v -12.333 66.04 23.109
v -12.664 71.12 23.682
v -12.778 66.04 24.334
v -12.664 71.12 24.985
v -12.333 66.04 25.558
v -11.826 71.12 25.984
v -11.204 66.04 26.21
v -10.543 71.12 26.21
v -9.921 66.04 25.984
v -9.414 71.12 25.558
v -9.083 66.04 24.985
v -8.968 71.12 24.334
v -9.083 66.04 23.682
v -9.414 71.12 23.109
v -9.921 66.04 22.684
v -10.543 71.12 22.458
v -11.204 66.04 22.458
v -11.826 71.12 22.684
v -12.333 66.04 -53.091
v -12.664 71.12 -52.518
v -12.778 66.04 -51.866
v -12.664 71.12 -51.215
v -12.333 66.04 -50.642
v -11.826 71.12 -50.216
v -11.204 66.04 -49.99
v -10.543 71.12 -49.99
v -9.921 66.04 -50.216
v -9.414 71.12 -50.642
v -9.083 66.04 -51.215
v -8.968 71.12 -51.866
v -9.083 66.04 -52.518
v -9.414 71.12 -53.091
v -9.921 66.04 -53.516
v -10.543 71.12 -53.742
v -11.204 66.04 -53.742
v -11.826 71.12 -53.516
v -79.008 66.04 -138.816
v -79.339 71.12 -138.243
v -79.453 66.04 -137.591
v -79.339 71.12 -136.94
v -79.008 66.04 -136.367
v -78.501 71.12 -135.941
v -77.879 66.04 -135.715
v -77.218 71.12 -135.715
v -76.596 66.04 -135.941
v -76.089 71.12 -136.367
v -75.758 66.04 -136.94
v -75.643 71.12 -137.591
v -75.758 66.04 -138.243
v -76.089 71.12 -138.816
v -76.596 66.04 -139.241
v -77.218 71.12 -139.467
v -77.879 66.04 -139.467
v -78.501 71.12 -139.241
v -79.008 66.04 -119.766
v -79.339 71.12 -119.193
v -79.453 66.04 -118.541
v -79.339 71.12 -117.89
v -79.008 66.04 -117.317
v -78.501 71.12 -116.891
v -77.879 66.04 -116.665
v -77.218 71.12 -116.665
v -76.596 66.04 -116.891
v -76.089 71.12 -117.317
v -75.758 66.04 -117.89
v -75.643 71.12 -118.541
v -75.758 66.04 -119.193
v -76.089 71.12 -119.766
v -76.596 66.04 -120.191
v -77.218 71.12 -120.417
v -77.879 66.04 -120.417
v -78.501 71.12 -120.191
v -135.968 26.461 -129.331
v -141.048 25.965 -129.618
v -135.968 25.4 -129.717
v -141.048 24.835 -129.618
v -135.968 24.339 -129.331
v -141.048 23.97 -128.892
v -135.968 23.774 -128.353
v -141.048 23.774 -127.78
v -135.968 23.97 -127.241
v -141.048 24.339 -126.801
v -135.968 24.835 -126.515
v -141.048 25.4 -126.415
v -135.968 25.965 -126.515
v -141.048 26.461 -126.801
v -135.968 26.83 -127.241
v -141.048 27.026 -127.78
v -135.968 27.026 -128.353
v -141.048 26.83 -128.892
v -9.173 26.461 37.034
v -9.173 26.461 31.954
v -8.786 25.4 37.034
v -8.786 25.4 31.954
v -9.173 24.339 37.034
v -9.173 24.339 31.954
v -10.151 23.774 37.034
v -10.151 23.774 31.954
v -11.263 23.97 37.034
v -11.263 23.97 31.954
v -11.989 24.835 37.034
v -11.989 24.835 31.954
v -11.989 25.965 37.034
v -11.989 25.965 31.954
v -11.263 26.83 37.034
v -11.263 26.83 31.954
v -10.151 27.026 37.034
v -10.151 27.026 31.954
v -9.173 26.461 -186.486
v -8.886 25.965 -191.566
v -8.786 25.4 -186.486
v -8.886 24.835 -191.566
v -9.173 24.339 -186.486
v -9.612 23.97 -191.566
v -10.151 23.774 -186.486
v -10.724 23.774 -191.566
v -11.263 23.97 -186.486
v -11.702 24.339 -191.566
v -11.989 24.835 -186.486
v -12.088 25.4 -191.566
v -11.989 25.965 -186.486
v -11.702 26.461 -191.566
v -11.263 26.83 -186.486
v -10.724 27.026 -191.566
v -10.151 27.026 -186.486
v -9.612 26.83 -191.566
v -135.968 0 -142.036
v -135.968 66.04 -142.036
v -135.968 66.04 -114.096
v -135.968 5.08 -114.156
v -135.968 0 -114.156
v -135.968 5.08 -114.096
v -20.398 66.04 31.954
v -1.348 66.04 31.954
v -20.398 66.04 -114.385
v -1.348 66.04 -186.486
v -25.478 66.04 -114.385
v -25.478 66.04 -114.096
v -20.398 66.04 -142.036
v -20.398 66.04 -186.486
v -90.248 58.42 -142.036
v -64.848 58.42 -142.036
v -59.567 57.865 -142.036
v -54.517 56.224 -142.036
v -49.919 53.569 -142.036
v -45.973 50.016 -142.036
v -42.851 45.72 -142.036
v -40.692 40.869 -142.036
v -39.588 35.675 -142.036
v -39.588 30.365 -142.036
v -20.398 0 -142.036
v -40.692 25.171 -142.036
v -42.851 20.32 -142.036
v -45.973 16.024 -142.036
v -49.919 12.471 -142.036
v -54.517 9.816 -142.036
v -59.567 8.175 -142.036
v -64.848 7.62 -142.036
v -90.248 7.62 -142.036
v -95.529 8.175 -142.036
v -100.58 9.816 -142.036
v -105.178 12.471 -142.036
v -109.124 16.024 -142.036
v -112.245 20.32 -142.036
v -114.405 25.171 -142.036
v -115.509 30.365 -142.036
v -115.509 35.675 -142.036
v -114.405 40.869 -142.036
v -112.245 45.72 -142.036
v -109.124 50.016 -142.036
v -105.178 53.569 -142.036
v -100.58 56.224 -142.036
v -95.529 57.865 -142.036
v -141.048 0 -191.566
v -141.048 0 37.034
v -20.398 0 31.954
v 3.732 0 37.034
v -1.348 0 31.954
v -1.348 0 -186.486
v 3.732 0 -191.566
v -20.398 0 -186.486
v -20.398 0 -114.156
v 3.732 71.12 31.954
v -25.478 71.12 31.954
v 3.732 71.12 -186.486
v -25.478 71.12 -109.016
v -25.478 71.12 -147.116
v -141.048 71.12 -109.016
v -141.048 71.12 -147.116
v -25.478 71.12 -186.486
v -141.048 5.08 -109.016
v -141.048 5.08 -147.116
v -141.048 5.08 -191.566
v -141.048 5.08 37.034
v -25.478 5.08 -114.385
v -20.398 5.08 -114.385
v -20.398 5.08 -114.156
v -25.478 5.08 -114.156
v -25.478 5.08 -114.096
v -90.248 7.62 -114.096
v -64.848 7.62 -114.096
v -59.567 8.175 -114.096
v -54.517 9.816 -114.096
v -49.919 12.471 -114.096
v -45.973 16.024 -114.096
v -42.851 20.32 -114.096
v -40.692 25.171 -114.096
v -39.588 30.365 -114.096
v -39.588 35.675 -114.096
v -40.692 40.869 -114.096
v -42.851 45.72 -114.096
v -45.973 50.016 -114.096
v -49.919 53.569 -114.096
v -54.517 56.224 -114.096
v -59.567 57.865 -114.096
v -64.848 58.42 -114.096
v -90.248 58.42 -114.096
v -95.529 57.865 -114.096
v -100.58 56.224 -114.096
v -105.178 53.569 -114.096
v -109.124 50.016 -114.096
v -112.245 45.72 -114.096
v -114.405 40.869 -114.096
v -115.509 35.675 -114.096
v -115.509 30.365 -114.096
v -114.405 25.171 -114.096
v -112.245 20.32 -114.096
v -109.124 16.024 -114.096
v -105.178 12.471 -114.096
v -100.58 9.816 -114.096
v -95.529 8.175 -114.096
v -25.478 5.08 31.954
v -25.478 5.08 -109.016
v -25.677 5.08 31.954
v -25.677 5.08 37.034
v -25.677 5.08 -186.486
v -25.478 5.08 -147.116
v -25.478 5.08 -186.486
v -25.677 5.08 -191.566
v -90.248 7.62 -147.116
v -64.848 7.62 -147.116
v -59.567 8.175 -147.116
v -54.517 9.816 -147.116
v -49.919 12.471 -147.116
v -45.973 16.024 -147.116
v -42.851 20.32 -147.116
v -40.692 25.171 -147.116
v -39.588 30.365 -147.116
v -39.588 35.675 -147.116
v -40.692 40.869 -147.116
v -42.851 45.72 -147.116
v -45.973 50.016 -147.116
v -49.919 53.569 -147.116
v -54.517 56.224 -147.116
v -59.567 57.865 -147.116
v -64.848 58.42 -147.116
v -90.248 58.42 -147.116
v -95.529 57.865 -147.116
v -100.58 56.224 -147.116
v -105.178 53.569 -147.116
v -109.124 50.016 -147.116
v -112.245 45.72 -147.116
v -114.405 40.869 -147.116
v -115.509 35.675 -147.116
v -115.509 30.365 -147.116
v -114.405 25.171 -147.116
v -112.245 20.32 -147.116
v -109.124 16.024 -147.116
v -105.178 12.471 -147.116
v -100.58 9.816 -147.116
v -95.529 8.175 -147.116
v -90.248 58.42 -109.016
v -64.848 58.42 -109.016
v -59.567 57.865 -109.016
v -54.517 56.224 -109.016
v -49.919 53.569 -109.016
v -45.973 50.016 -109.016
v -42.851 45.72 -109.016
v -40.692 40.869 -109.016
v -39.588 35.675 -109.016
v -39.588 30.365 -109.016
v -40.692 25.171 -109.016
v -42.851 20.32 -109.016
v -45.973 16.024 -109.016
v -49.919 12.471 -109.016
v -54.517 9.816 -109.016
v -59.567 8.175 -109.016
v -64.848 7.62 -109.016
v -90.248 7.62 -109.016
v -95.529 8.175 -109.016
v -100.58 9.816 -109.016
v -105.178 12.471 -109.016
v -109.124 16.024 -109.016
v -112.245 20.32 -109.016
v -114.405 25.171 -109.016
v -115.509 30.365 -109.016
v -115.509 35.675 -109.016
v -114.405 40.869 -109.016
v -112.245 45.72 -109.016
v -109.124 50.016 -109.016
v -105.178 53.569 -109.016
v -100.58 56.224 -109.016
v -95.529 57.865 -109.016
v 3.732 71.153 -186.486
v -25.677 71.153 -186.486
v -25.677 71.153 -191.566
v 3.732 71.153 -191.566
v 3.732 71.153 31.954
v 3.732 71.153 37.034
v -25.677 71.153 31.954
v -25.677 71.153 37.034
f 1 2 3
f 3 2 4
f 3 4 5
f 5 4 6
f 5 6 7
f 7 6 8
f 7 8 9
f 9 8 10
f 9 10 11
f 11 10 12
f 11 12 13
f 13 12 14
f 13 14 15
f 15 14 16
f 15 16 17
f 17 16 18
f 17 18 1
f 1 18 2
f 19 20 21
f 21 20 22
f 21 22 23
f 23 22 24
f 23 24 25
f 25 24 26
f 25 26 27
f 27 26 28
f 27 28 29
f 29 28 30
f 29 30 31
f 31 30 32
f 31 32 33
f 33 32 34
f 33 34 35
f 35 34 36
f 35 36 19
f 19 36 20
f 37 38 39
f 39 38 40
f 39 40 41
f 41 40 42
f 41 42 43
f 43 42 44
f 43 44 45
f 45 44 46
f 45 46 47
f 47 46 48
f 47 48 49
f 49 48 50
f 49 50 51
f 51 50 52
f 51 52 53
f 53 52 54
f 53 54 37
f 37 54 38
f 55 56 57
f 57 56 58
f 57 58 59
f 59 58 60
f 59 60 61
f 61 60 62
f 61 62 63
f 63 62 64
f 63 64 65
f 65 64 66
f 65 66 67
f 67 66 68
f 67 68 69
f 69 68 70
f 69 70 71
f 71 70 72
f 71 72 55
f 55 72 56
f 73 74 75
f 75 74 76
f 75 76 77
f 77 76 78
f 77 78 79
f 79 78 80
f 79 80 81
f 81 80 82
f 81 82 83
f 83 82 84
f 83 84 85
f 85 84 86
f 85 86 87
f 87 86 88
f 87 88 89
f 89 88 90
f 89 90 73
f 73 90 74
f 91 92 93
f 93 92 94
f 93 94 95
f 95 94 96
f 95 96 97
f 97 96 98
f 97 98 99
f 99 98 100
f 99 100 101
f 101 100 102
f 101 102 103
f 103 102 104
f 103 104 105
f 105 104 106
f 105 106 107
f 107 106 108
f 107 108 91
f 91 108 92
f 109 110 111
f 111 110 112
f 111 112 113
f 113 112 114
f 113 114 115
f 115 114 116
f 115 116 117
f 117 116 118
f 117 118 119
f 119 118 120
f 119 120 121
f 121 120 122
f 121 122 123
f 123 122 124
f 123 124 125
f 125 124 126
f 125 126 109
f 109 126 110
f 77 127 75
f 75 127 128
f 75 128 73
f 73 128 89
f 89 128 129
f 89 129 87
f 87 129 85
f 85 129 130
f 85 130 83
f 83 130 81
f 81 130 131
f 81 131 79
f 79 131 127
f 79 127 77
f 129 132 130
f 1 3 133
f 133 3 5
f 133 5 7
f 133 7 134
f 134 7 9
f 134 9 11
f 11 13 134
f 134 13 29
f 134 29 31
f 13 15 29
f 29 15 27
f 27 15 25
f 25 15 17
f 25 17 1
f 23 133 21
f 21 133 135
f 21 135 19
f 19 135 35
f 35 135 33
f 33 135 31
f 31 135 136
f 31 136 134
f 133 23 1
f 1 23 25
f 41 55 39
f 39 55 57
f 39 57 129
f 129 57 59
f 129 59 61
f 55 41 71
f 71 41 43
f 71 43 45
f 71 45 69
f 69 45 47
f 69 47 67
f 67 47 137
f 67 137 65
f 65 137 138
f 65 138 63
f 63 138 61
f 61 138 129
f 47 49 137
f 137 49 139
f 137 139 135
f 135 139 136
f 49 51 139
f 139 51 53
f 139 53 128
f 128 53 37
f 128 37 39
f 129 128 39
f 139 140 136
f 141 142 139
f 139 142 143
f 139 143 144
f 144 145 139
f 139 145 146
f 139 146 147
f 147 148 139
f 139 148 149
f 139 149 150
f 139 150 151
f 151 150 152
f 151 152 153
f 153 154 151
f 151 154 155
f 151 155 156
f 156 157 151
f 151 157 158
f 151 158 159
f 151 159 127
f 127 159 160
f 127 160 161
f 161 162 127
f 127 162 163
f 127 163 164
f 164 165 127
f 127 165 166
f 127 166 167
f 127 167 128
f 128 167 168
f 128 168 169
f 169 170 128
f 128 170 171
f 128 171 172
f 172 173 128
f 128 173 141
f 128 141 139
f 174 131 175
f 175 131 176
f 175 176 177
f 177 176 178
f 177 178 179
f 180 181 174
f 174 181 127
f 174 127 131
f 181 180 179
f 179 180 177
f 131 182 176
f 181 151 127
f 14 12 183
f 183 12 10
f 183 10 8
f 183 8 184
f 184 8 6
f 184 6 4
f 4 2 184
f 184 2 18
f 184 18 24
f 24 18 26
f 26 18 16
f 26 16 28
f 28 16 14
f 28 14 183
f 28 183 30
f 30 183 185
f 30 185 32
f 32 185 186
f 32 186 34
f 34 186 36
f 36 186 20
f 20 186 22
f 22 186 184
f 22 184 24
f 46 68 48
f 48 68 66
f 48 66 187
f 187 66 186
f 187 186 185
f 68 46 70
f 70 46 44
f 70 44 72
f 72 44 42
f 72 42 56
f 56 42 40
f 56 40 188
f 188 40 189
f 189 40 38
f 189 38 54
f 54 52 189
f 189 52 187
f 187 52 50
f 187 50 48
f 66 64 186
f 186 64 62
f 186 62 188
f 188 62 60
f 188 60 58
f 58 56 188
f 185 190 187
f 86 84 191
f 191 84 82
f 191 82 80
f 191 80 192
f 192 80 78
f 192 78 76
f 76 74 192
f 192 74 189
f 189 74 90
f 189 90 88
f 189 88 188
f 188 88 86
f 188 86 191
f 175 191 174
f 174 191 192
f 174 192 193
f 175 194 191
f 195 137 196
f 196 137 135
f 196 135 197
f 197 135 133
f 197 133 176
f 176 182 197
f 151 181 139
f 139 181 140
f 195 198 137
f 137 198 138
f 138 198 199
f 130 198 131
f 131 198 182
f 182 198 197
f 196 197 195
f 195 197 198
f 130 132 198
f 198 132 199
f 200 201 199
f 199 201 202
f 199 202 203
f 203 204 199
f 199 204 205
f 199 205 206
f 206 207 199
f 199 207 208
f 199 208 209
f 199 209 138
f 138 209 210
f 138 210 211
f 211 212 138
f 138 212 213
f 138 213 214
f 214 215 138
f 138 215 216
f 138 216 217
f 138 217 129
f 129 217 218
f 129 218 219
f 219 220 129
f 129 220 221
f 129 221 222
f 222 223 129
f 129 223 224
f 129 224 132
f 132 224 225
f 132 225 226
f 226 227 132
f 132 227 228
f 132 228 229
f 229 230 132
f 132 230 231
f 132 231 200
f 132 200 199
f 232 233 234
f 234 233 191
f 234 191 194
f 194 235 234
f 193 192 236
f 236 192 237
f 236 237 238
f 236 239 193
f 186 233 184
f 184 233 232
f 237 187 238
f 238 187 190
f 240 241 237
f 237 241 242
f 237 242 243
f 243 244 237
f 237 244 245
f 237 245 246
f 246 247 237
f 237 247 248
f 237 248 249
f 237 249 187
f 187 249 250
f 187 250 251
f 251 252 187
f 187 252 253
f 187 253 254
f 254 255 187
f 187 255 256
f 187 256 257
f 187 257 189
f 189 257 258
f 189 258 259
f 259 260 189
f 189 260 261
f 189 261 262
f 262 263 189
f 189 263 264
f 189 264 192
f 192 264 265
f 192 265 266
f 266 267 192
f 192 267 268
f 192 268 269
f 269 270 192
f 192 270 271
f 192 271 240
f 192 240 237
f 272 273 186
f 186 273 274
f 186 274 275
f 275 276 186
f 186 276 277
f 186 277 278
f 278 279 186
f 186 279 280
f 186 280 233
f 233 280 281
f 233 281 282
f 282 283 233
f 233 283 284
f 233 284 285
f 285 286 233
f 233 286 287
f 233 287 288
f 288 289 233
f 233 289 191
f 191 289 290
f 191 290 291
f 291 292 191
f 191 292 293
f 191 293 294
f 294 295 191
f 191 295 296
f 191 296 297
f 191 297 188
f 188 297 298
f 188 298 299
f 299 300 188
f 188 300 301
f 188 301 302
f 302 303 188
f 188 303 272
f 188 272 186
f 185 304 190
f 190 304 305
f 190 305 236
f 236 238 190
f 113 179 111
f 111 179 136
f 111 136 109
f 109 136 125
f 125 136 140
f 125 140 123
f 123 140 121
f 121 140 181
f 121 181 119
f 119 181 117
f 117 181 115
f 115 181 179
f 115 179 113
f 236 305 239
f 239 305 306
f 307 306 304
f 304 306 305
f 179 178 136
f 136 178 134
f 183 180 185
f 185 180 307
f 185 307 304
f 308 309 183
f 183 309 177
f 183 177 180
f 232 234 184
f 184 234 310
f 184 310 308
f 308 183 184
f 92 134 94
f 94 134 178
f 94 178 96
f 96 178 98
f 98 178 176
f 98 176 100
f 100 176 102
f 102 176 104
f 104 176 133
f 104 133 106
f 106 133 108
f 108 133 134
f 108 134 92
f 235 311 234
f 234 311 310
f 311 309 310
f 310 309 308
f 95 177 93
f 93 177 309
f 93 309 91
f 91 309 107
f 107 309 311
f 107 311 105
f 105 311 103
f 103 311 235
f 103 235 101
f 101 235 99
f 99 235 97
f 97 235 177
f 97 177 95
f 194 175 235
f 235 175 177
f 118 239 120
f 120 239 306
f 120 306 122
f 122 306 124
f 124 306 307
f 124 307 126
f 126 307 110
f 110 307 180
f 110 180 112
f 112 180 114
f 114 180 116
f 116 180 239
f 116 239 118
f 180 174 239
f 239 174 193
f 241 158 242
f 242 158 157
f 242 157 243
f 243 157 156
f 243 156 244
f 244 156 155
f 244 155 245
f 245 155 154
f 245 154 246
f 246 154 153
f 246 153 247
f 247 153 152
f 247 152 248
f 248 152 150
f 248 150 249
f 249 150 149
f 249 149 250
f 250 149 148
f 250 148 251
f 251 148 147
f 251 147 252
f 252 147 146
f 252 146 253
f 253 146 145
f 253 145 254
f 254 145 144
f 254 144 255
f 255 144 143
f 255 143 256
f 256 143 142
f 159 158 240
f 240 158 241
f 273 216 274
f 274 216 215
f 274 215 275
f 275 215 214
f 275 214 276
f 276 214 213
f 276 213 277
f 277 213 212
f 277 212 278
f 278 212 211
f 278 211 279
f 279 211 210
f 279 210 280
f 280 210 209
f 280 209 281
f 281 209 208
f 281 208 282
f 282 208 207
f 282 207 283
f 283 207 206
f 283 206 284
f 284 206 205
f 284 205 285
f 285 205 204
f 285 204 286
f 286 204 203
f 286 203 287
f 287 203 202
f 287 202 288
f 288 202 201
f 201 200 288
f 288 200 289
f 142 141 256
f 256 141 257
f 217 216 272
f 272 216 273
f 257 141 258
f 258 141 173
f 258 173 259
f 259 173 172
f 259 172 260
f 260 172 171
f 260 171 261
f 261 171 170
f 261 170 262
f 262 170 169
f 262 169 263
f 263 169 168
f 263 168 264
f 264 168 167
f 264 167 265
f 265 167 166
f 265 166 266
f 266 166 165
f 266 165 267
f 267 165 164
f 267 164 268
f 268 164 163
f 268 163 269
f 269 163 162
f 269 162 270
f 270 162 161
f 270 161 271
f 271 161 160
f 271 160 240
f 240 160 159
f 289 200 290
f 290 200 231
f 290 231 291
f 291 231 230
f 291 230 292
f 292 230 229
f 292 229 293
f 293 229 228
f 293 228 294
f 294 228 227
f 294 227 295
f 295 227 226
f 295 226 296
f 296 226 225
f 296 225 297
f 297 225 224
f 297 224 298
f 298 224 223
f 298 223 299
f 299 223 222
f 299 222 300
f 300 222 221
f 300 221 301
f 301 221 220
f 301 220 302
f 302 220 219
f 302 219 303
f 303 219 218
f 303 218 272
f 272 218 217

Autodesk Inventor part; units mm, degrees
ref_plane "YZ Plane" through (0, 0, 0) normal (1, 0, 0) x (0, 1, 0)
ref_plane "XZ Plane" through (0, 0, 0) normal (0, 1, 0) x (-1, 0, 0)
ref_plane "XY Plane" through (0, 0, 0) normal (0, 0, 1) x (1, 0, 0)
sketch "Sketch51" plane through (0, 0, 0) normal (0, 1, 0) x (-1, 0, 0)
  line L0 (1.3484, 37.0338) -> (-3.7316, 37.0338)
  line L1 (-3.7316, 37.0338) -> (-3.7316, -191.5662)
  line L2 (-3.7316, -191.5662) -> (1.3484, -191.5662)
  line L3 (1.3484, -191.5662) -> (1.3484, 37.0338)
  point P0 (0, 0)
  dimension "d172" = 5.08
  dimension "d173" = 228.6
extrude "Extrusion37" add sketch "Sketch51" along normal blind 71.12
sketch "Sketch52" plane through (-1.3484, 0, 37.0338) normal (0, 0, 1) x (1, 0, 0)
  line L0 (5.08, 0) -> (5.08, 71.12) projected
  line L1 (5.08, 71.12) -> (-24.13, 71.12)
  line L2 (-24.13, 71.12) -> (-24.13, 66.04)
  line L3 (-24.13, 66.04) -> (5.08, 66.04)
  line L4 (5.08, 66.04) -> (5.08, 71.12)
  point P0 (1.3484, 0)
  dimension "d176" = 5.08
  dimension "d177" = 29.21
extrude "Extrusion38" add sketch "Sketch52" against normal blind 228.6
sketch "Sketch54" plane through (0, 0, 0) normal (0, -1, 0) x (1, 0, 0)
  line L0 (-20.3984, 37.0338) -> (-141.0484, 37.0338)
  line L1 (-141.0484, 37.0338) -> (-141.0484, -191.5662)
  line L2 (-141.0484, -191.5662) -> (-20.3984, -191.5662)
  line L3 (-20.3984, -191.5662) -> (-20.3984, 37.0338)
  line L4 (-25.4784, 37.0338) -> (-1.3484, 37.0338) projected
  line L5 (-1.3484, -191.5662) -> (-25.4784, -191.5662) projected
  line L6 (-1.3484, -191.5662) -> (-1.3484, 37.0338) projected
  point P0 (0, 0)
  dimension "d180" = 0
  dimension "d181" = 0
  dimension "d182" = 19.05
  dimension "d183" = 120.65
extrude "Extrusion39" add sketch "Sketch54" against normal blind 5.08 contours L3 L2 L1 L0
sketch "Sketch55" plane through (-1.3484, 0, 37.0338) normal (0, 0, 1) x (1, 0, 0)
  line L0 (-139.7, 5.08) -> (-19.05, 5.08) projected
  line L1 (-24.13, 66.04) -> (-24.13, 71.12) projected
  line L2 (-19.05, 5.08) -> (-24.13, 5.08)
  line L3 (-24.13, 5.08) -> (-24.13, 71.12)
  line L4 (-24.13, 71.12) -> (-19.05, 71.12)
  line L5 (-19.05, 71.12) -> (-19.05, 5.08)
  point P0 (1.3484, 0)
extrude "Extrusion40" add sketch "Sketch55" against normal blind 228.6
sketch "Sketch56" plane through (3.7316, 0, 37.0338) normal (0, 0, 1) x (1, 0, 0)
  line L0 (-29.4089, 71.1531) -> (0, 71.1531)
  line L1 (0, 71.1531) -> (0, 0)
  line L2 (0, 0) -> (-29.4089, 0)
  line L3 (-29.4089, 0) -> (-29.4089, 71.1531)
  point P0 (-3.7316, 0)
extrude "Extrusion41" add sketch "Sketch56" against normal blind 5.08
sketch "Sketch57" plane through (3.7316, 0, -191.5662) normal (0, 0, -1) x (-1, 0, 0)
  line L0 (29.4089, 5.08) -> (29.4089, 71.1531) projected
  line L1 (29.4089, 71.1531) -> (0, 71.1531)
  line L2 (0, 71.1531) -> (0, 0)
  line L3 (0, 0) -> (29.4089, 0)
  line L4 (29.4089, 0) -> (29.4089, 71.1531)
  point P0 (3.7316, 0)
extrude "Extrusion42" add sketch "Sketch57" against normal blind 5.08
sketch "Sketch58" plane through (0, 71.12, 0) normal (0, 1, 0) x (1, 0, 0)
  line L0 (-25.4784, -31.9538) -> (-25.4784, 186.4862) projected
  line L1 (-141.0484, 191.5662) -> (-141.0484, -37.0338) projected
  line L2 (-25.4784, 109.0162) -> (-141.0484, 109.0162)
  line L3 (-141.0484, 109.0162) -> (-141.0484, 147.1162)
  line L4 (-141.0484, 147.1162) -> (-25.4784, 147.1162)
  line L5 (-25.4784, 147.1162) -> (-25.4784, 109.0162)
  line L6 (-25.6773, 191.5662) -> (-141.0484, 191.5662) projected
  point P0 (0, 0)
  dimension "d192" = 38.1
  dimension "d193" = 44.45
extrude "Extrusion43" add sketch "Sketch58" against normal blind 5.08
sketch "Sketch59" plane through (-141.0484, 71.12, -147.1162) normal (-1, 0, 0) x (0, 0, 1)
  line L0 (0, 0) -> (0, -5.08) projected
  line L1 (184.15, -71.12) -> (-44.45, -71.12) projected
  line L2 (0, 0) -> (5.08, 0)
  line L3 (5.08, 0) -> (5.08, -71.12)
  line L4 (5.08, -71.12) -> (0, -71.12)
  line L5 (0, -71.12) -> (0, 0)
  line L6 (38.1, 0) -> (38.1, -5.08) projected
  line L7 (38.1, 0) -> (33.02, 0)
  line L8 (33.02, 0) -> (33.02, -71.12)
  line L9 (33.02, -71.12) -> (38.1, -71.12)
  line L10 (38.1, -71.12) -> (38.1, 0)
  point P0 (147.1162, -71.12)
  dimension "d196" = 5.08
  dimension "d197" = 5.08
extrude "Extrusion44" add sketch "Sketch59" against normal blind 120.65
sketch "Sketch60" plane through (-141.0484, 0, -191.5662) normal (-1, 0, 0) x (0, 0, 1)
  line L0 (49.53, 5.08) -> (77.47, 5.08) projected
  line L1 (5.08, 0) -> (223.52, 0) projected
  line L2 (49.53, 5.08) -> (77.4104, 5.08)
  line L3 (77.4104, 5.08) -> (77.4104, 0)
  line L4 (77.4104, 0) -> (49.53, 0)
  line L5 (49.53, 0) -> (49.53, 5.08)
  point P0 (191.5662, 0)
extrude "Extrusion45" cut sketch "Sketch60" against normal blind 120.65
sketch "Sketch61" plane through (-25.4784, 66.04, -142.0362) normal (-1, 0, 0) x (0, 0, 1)
  line L0 (0, -66.04) -> (0, 0) projected
  line L1 (27.94, 0) -> (27.94, -60.96) projected
  line L2 (27.94, 0) -> (0, 0) projected
  line L3 (-44.45, -66.04) -> (173.99, -66.04) projected
  line L4 (0, 0) -> (27.6512, 0)
  line L5 (27.6512, 0) -> (27.6512, -66.04)
  line L6 (27.6512, -66.04) -> (0, -66.04)
  line L7 (0, -66.04) -> (0, 0)
  point P0 (142.0362, -66.04)
extrude "Extrusion46" cut sketch "Sketch61" against normal blind 5.08
sketch "Sketch62" plane through (-141.0484, 5.08, -109.0162) normal (-1, 0, 0) x (0, 0, 1)
  line L0 (-33.02, -5.08) -> (-82.55, -5.08) projected
  line L1 (-38.1, 66.04) -> (-38.1, 0) projected
  line L2 (0, 66.04) -> (0, 0) projected
  line L3 (-5.1396, 0) -> (-5.1396, -5.08) projected
  line L4 (146.05, -5.08) -> (-5.1396, -5.08) projected
  line L5 (146.05, -5.08) -> (146.05, 0) projected
  line L6 (0, 0) -> (146.05, 0) projected
  line L7 (0, 66.04) -> (0, 0) projected
  line L8 (0, 66.04) -> (-38.1, 66.04) projected
  line L9 (-38.1, 66.04) -> (-38.1, 0) projected
  line L10 (-82.55, 0) -> (-38.1, 0) projected
  line L11 (-82.55, -5.08) -> (-82.55, 0) projected
  line L12 (-33.02, -5.08) -> (-82.55, -5.08) projected
  line L13 (-33.02, -5.08) -> (-33.02, 60.96) projected
  line L14 (-5.08, 60.96) -> (-33.02, 60.96) projected
  line L15 (-5.08, 60.96) -> (-5.08, 0) projected
  line L16 (0, 66.04) -> (-34.1859, 66.04)
  line L17 (-34.1859, 66.04) -> (-34.1859, -5.08)
  line L18 (-34.1859, -5.08) -> (0, -5.08)
  line L19 (0, -5.08) -> (0, 66.04)
  line L20 (-5.1396, 0) -> (-5.08, 0) projected
  point P0 (109.0162, -5.08)
extrude "Extrusion47" add sketch "Sketch62" against normal blind 5.08 contours L0 L17 L8 L2 L19 L4 L3 L20 L15 L14 L13 | L13 L14 L15 L20 L3 L18
sketch "Sketch63" plane through (3.7316, 0, -191.5662) normal (0, 0, -1) x (-1, 0, 0)
  line L0 (0, 0) -> (144.78, 0) projected
  line L1 (29.4089, 5.08) -> (29.4089, 71.1531) projected
  point P0 (3.7316, 0)
  point P1 (14.1689, 25.4)
  dimension "d206" = 25.4
  dimension "d207" = 15.24
hole "Hole8" at (-10.4373, 25.4, -191.5662) direction (0, 0, 1) diameter 3.302 end through all
sketch "Sketch64" plane through (-141.0484, 0, -191.5662) normal (-1, 0, 0) x (0, 0, 1)
  line L0 (228.6, 0) -> (0, 0) projected
  line L1 (44.45, 71.12) -> (44.45, 5.08) projected
  point P0 (191.5662, 0)
  point P1 (63.5, 25.4)
  dimension "d215" = 25.4
  dimension "d216" = 19.05
hole "Hole9" at (-141.0484, 25.4, -128.0662) direction (1, 0, 0) diameter 3.302 depth 25.4 tip angle 118.188
sketch "Sketch66" plane through (0, 71.12, 0) normal (0, 1, 0) x (1, 0, 0)
  line L0 (-141.0484, 109.0162) -> (-141.0484, 147.1162) projected
  line L1 (-25.4784, 109.0162) -> (-141.0484, 109.0162) projected
  line L2 (-141.0484, 147.1162) -> (-25.4784, 147.1162) projected
  point P0 (0, 0)
  point P1 (-77.5484, 137.5912)
  point P2 (-77.5484, 118.5412)
  dimension "d224" = 0
  dimension "d225" = 63.5
  dimension "d226" = 9.525
  dimension "d227" = 9.525
hole "Hole10" at (-77.5484, 71.12, -137.5912) at (-77.5484, 71.12, -118.5412) direction (0, -1, 0) diameter 3.81 depth 25.4 tip angle 118.188
sketch "Sketch67" plane through (0, 71.12, 0) normal (0, 1, 0) x (1, 0, 0)
  line L0 (-25.4784, -31.9538) -> (-25.4784, 109.0162) projected
  line L1 (-25.6773, -37.0338) -> (3.7316, -37.0338) projected
  point P0 (0, 0)
  point P1 (-10.8734, -24.3338)
  point P2 (-10.8734, 51.8662)
  dimension "d235" = 0
  dimension "d236" = 76.2
  dimension "d237" = 14.605
  dimension "d238" = 12.7
hole "Hole11" at (-10.8734, 71.12, 24.3338) at (-10.8734, 71.12, -51.8662) direction (0, -1, 0) diameter 3.81 depth 25.4 tip angle 118.188
sketch "Sketch68" plane through (-141.0484, 71.12, -109.0162) normal (0, 0, 1) x (1, 0, 0)
  line L0 (50.8, -38.1) -> (76.2, -38.1) construction
  line L1 (50.8, -63.5) -> (76.2, -63.5)
  line L2 (76.2, -12.7) -> (50.8, -12.7)
  arc A0 (50.8, -12.7) -> (50.8, -63.5) centre (50.8, -38.1) ccw
  arc A1 (76.2, -63.5) -> (76.2, -12.7) centre (76.2, -38.1) ccw
  line L3 (115.57, 0) -> (0, 0) projected
  line L4 (0, 0) -> (0, -66.04) projected
  point P0 (141.0484, -71.12)
  point P1 (63.5, -38.1)
  dimension "d246" = 38.1
  dimension "d247" = 25.4
  dimension "d248" = 50.8
  dimension "d249" = 25.4
extrude "Extrusion48" cut sketch "Sketch68" against normal blind 77.7875
equation "\"d172\" = WallWidth"
equation "\"d173\" = PartLength"
equation "\"d174\" = CPDeckHeight"
equation "\"d176\" = WallWidth"
equation "\"d177\" = 2 * WallWidth + ControlPlateShelfLength"
equation "\"d178\" = PartLength"
equation "\"d182\" = ControlPlateShelfLength"
equation "\"d183\" = CPDWidthHole"
equation "\"d184\" = WallWidth"
equation "\"d186\" = PartLength"
equation "\"d188\" = WallWidth"
equation "\"d190\" = WallWidth"
equation "\"d194\" = WallWidth"
equation "\"d196\" = WallWidth"
equation "\"d197\" = WallWidth"
equation "\"d202\" = WallWidth"
equation "\"d204\" = WallWidth"
equation "\"DSLength\" = 1371.6"
equation "\"DSWidth\" = 304.8"
equation "\"DCDeckHeight\" = 76.2"
equation "\"WallWidth\" = 5.08"
equation "\"EdgeAngle\" = 10deg"
equation "\"LengthCuts\" = 152.4"
equation "\"WidthCuts\" = 50.8"
equation "\"PartLength\" = 228.6"
equation "\"PartWidth\" = 152.4"
equation "\"BoltHoldDiam\" = 6.35"
equation "\"ControlPlateLength\" = 228.6"
equation "\"ControlPlateWidth\" = 228.6"
equation "\"ControlPlateShelfLength\" = 19.05"
equation "\"ControlHoleLength\" = 190.5"
equation "\"ControlHoleWidth\" = 190.5"
equation "\"ControlHoleFromSide\" = 63.5"
equation "\"ControlHoleBoltHoleMid\" = 9.525"
equation "\"CPDeckHeight\" = 71.12"
equation "\"CPFromSide\" = 63.5"
equation "\"CPFromBack\" = 63.5"
equation "\"DU1CHWidth\" = 69.85"
equation "\"DU1CHLength\" = 146.05"
equation "\"ControlPlateScrewLength\" = 76.2"
equation "\"DSBackHeight\" = 127"
equation "\"BackShelf\" = 25.4"
equation "\"MainAngle\" = 168.22deg"
equation "\"CPDWidthHole\" = 120.65"
equation "\"CPDLengthHole\" = 146.05"
equation "\"DownBackHeight\" = 130.7084"
properties part number "CPLRightTwo"
